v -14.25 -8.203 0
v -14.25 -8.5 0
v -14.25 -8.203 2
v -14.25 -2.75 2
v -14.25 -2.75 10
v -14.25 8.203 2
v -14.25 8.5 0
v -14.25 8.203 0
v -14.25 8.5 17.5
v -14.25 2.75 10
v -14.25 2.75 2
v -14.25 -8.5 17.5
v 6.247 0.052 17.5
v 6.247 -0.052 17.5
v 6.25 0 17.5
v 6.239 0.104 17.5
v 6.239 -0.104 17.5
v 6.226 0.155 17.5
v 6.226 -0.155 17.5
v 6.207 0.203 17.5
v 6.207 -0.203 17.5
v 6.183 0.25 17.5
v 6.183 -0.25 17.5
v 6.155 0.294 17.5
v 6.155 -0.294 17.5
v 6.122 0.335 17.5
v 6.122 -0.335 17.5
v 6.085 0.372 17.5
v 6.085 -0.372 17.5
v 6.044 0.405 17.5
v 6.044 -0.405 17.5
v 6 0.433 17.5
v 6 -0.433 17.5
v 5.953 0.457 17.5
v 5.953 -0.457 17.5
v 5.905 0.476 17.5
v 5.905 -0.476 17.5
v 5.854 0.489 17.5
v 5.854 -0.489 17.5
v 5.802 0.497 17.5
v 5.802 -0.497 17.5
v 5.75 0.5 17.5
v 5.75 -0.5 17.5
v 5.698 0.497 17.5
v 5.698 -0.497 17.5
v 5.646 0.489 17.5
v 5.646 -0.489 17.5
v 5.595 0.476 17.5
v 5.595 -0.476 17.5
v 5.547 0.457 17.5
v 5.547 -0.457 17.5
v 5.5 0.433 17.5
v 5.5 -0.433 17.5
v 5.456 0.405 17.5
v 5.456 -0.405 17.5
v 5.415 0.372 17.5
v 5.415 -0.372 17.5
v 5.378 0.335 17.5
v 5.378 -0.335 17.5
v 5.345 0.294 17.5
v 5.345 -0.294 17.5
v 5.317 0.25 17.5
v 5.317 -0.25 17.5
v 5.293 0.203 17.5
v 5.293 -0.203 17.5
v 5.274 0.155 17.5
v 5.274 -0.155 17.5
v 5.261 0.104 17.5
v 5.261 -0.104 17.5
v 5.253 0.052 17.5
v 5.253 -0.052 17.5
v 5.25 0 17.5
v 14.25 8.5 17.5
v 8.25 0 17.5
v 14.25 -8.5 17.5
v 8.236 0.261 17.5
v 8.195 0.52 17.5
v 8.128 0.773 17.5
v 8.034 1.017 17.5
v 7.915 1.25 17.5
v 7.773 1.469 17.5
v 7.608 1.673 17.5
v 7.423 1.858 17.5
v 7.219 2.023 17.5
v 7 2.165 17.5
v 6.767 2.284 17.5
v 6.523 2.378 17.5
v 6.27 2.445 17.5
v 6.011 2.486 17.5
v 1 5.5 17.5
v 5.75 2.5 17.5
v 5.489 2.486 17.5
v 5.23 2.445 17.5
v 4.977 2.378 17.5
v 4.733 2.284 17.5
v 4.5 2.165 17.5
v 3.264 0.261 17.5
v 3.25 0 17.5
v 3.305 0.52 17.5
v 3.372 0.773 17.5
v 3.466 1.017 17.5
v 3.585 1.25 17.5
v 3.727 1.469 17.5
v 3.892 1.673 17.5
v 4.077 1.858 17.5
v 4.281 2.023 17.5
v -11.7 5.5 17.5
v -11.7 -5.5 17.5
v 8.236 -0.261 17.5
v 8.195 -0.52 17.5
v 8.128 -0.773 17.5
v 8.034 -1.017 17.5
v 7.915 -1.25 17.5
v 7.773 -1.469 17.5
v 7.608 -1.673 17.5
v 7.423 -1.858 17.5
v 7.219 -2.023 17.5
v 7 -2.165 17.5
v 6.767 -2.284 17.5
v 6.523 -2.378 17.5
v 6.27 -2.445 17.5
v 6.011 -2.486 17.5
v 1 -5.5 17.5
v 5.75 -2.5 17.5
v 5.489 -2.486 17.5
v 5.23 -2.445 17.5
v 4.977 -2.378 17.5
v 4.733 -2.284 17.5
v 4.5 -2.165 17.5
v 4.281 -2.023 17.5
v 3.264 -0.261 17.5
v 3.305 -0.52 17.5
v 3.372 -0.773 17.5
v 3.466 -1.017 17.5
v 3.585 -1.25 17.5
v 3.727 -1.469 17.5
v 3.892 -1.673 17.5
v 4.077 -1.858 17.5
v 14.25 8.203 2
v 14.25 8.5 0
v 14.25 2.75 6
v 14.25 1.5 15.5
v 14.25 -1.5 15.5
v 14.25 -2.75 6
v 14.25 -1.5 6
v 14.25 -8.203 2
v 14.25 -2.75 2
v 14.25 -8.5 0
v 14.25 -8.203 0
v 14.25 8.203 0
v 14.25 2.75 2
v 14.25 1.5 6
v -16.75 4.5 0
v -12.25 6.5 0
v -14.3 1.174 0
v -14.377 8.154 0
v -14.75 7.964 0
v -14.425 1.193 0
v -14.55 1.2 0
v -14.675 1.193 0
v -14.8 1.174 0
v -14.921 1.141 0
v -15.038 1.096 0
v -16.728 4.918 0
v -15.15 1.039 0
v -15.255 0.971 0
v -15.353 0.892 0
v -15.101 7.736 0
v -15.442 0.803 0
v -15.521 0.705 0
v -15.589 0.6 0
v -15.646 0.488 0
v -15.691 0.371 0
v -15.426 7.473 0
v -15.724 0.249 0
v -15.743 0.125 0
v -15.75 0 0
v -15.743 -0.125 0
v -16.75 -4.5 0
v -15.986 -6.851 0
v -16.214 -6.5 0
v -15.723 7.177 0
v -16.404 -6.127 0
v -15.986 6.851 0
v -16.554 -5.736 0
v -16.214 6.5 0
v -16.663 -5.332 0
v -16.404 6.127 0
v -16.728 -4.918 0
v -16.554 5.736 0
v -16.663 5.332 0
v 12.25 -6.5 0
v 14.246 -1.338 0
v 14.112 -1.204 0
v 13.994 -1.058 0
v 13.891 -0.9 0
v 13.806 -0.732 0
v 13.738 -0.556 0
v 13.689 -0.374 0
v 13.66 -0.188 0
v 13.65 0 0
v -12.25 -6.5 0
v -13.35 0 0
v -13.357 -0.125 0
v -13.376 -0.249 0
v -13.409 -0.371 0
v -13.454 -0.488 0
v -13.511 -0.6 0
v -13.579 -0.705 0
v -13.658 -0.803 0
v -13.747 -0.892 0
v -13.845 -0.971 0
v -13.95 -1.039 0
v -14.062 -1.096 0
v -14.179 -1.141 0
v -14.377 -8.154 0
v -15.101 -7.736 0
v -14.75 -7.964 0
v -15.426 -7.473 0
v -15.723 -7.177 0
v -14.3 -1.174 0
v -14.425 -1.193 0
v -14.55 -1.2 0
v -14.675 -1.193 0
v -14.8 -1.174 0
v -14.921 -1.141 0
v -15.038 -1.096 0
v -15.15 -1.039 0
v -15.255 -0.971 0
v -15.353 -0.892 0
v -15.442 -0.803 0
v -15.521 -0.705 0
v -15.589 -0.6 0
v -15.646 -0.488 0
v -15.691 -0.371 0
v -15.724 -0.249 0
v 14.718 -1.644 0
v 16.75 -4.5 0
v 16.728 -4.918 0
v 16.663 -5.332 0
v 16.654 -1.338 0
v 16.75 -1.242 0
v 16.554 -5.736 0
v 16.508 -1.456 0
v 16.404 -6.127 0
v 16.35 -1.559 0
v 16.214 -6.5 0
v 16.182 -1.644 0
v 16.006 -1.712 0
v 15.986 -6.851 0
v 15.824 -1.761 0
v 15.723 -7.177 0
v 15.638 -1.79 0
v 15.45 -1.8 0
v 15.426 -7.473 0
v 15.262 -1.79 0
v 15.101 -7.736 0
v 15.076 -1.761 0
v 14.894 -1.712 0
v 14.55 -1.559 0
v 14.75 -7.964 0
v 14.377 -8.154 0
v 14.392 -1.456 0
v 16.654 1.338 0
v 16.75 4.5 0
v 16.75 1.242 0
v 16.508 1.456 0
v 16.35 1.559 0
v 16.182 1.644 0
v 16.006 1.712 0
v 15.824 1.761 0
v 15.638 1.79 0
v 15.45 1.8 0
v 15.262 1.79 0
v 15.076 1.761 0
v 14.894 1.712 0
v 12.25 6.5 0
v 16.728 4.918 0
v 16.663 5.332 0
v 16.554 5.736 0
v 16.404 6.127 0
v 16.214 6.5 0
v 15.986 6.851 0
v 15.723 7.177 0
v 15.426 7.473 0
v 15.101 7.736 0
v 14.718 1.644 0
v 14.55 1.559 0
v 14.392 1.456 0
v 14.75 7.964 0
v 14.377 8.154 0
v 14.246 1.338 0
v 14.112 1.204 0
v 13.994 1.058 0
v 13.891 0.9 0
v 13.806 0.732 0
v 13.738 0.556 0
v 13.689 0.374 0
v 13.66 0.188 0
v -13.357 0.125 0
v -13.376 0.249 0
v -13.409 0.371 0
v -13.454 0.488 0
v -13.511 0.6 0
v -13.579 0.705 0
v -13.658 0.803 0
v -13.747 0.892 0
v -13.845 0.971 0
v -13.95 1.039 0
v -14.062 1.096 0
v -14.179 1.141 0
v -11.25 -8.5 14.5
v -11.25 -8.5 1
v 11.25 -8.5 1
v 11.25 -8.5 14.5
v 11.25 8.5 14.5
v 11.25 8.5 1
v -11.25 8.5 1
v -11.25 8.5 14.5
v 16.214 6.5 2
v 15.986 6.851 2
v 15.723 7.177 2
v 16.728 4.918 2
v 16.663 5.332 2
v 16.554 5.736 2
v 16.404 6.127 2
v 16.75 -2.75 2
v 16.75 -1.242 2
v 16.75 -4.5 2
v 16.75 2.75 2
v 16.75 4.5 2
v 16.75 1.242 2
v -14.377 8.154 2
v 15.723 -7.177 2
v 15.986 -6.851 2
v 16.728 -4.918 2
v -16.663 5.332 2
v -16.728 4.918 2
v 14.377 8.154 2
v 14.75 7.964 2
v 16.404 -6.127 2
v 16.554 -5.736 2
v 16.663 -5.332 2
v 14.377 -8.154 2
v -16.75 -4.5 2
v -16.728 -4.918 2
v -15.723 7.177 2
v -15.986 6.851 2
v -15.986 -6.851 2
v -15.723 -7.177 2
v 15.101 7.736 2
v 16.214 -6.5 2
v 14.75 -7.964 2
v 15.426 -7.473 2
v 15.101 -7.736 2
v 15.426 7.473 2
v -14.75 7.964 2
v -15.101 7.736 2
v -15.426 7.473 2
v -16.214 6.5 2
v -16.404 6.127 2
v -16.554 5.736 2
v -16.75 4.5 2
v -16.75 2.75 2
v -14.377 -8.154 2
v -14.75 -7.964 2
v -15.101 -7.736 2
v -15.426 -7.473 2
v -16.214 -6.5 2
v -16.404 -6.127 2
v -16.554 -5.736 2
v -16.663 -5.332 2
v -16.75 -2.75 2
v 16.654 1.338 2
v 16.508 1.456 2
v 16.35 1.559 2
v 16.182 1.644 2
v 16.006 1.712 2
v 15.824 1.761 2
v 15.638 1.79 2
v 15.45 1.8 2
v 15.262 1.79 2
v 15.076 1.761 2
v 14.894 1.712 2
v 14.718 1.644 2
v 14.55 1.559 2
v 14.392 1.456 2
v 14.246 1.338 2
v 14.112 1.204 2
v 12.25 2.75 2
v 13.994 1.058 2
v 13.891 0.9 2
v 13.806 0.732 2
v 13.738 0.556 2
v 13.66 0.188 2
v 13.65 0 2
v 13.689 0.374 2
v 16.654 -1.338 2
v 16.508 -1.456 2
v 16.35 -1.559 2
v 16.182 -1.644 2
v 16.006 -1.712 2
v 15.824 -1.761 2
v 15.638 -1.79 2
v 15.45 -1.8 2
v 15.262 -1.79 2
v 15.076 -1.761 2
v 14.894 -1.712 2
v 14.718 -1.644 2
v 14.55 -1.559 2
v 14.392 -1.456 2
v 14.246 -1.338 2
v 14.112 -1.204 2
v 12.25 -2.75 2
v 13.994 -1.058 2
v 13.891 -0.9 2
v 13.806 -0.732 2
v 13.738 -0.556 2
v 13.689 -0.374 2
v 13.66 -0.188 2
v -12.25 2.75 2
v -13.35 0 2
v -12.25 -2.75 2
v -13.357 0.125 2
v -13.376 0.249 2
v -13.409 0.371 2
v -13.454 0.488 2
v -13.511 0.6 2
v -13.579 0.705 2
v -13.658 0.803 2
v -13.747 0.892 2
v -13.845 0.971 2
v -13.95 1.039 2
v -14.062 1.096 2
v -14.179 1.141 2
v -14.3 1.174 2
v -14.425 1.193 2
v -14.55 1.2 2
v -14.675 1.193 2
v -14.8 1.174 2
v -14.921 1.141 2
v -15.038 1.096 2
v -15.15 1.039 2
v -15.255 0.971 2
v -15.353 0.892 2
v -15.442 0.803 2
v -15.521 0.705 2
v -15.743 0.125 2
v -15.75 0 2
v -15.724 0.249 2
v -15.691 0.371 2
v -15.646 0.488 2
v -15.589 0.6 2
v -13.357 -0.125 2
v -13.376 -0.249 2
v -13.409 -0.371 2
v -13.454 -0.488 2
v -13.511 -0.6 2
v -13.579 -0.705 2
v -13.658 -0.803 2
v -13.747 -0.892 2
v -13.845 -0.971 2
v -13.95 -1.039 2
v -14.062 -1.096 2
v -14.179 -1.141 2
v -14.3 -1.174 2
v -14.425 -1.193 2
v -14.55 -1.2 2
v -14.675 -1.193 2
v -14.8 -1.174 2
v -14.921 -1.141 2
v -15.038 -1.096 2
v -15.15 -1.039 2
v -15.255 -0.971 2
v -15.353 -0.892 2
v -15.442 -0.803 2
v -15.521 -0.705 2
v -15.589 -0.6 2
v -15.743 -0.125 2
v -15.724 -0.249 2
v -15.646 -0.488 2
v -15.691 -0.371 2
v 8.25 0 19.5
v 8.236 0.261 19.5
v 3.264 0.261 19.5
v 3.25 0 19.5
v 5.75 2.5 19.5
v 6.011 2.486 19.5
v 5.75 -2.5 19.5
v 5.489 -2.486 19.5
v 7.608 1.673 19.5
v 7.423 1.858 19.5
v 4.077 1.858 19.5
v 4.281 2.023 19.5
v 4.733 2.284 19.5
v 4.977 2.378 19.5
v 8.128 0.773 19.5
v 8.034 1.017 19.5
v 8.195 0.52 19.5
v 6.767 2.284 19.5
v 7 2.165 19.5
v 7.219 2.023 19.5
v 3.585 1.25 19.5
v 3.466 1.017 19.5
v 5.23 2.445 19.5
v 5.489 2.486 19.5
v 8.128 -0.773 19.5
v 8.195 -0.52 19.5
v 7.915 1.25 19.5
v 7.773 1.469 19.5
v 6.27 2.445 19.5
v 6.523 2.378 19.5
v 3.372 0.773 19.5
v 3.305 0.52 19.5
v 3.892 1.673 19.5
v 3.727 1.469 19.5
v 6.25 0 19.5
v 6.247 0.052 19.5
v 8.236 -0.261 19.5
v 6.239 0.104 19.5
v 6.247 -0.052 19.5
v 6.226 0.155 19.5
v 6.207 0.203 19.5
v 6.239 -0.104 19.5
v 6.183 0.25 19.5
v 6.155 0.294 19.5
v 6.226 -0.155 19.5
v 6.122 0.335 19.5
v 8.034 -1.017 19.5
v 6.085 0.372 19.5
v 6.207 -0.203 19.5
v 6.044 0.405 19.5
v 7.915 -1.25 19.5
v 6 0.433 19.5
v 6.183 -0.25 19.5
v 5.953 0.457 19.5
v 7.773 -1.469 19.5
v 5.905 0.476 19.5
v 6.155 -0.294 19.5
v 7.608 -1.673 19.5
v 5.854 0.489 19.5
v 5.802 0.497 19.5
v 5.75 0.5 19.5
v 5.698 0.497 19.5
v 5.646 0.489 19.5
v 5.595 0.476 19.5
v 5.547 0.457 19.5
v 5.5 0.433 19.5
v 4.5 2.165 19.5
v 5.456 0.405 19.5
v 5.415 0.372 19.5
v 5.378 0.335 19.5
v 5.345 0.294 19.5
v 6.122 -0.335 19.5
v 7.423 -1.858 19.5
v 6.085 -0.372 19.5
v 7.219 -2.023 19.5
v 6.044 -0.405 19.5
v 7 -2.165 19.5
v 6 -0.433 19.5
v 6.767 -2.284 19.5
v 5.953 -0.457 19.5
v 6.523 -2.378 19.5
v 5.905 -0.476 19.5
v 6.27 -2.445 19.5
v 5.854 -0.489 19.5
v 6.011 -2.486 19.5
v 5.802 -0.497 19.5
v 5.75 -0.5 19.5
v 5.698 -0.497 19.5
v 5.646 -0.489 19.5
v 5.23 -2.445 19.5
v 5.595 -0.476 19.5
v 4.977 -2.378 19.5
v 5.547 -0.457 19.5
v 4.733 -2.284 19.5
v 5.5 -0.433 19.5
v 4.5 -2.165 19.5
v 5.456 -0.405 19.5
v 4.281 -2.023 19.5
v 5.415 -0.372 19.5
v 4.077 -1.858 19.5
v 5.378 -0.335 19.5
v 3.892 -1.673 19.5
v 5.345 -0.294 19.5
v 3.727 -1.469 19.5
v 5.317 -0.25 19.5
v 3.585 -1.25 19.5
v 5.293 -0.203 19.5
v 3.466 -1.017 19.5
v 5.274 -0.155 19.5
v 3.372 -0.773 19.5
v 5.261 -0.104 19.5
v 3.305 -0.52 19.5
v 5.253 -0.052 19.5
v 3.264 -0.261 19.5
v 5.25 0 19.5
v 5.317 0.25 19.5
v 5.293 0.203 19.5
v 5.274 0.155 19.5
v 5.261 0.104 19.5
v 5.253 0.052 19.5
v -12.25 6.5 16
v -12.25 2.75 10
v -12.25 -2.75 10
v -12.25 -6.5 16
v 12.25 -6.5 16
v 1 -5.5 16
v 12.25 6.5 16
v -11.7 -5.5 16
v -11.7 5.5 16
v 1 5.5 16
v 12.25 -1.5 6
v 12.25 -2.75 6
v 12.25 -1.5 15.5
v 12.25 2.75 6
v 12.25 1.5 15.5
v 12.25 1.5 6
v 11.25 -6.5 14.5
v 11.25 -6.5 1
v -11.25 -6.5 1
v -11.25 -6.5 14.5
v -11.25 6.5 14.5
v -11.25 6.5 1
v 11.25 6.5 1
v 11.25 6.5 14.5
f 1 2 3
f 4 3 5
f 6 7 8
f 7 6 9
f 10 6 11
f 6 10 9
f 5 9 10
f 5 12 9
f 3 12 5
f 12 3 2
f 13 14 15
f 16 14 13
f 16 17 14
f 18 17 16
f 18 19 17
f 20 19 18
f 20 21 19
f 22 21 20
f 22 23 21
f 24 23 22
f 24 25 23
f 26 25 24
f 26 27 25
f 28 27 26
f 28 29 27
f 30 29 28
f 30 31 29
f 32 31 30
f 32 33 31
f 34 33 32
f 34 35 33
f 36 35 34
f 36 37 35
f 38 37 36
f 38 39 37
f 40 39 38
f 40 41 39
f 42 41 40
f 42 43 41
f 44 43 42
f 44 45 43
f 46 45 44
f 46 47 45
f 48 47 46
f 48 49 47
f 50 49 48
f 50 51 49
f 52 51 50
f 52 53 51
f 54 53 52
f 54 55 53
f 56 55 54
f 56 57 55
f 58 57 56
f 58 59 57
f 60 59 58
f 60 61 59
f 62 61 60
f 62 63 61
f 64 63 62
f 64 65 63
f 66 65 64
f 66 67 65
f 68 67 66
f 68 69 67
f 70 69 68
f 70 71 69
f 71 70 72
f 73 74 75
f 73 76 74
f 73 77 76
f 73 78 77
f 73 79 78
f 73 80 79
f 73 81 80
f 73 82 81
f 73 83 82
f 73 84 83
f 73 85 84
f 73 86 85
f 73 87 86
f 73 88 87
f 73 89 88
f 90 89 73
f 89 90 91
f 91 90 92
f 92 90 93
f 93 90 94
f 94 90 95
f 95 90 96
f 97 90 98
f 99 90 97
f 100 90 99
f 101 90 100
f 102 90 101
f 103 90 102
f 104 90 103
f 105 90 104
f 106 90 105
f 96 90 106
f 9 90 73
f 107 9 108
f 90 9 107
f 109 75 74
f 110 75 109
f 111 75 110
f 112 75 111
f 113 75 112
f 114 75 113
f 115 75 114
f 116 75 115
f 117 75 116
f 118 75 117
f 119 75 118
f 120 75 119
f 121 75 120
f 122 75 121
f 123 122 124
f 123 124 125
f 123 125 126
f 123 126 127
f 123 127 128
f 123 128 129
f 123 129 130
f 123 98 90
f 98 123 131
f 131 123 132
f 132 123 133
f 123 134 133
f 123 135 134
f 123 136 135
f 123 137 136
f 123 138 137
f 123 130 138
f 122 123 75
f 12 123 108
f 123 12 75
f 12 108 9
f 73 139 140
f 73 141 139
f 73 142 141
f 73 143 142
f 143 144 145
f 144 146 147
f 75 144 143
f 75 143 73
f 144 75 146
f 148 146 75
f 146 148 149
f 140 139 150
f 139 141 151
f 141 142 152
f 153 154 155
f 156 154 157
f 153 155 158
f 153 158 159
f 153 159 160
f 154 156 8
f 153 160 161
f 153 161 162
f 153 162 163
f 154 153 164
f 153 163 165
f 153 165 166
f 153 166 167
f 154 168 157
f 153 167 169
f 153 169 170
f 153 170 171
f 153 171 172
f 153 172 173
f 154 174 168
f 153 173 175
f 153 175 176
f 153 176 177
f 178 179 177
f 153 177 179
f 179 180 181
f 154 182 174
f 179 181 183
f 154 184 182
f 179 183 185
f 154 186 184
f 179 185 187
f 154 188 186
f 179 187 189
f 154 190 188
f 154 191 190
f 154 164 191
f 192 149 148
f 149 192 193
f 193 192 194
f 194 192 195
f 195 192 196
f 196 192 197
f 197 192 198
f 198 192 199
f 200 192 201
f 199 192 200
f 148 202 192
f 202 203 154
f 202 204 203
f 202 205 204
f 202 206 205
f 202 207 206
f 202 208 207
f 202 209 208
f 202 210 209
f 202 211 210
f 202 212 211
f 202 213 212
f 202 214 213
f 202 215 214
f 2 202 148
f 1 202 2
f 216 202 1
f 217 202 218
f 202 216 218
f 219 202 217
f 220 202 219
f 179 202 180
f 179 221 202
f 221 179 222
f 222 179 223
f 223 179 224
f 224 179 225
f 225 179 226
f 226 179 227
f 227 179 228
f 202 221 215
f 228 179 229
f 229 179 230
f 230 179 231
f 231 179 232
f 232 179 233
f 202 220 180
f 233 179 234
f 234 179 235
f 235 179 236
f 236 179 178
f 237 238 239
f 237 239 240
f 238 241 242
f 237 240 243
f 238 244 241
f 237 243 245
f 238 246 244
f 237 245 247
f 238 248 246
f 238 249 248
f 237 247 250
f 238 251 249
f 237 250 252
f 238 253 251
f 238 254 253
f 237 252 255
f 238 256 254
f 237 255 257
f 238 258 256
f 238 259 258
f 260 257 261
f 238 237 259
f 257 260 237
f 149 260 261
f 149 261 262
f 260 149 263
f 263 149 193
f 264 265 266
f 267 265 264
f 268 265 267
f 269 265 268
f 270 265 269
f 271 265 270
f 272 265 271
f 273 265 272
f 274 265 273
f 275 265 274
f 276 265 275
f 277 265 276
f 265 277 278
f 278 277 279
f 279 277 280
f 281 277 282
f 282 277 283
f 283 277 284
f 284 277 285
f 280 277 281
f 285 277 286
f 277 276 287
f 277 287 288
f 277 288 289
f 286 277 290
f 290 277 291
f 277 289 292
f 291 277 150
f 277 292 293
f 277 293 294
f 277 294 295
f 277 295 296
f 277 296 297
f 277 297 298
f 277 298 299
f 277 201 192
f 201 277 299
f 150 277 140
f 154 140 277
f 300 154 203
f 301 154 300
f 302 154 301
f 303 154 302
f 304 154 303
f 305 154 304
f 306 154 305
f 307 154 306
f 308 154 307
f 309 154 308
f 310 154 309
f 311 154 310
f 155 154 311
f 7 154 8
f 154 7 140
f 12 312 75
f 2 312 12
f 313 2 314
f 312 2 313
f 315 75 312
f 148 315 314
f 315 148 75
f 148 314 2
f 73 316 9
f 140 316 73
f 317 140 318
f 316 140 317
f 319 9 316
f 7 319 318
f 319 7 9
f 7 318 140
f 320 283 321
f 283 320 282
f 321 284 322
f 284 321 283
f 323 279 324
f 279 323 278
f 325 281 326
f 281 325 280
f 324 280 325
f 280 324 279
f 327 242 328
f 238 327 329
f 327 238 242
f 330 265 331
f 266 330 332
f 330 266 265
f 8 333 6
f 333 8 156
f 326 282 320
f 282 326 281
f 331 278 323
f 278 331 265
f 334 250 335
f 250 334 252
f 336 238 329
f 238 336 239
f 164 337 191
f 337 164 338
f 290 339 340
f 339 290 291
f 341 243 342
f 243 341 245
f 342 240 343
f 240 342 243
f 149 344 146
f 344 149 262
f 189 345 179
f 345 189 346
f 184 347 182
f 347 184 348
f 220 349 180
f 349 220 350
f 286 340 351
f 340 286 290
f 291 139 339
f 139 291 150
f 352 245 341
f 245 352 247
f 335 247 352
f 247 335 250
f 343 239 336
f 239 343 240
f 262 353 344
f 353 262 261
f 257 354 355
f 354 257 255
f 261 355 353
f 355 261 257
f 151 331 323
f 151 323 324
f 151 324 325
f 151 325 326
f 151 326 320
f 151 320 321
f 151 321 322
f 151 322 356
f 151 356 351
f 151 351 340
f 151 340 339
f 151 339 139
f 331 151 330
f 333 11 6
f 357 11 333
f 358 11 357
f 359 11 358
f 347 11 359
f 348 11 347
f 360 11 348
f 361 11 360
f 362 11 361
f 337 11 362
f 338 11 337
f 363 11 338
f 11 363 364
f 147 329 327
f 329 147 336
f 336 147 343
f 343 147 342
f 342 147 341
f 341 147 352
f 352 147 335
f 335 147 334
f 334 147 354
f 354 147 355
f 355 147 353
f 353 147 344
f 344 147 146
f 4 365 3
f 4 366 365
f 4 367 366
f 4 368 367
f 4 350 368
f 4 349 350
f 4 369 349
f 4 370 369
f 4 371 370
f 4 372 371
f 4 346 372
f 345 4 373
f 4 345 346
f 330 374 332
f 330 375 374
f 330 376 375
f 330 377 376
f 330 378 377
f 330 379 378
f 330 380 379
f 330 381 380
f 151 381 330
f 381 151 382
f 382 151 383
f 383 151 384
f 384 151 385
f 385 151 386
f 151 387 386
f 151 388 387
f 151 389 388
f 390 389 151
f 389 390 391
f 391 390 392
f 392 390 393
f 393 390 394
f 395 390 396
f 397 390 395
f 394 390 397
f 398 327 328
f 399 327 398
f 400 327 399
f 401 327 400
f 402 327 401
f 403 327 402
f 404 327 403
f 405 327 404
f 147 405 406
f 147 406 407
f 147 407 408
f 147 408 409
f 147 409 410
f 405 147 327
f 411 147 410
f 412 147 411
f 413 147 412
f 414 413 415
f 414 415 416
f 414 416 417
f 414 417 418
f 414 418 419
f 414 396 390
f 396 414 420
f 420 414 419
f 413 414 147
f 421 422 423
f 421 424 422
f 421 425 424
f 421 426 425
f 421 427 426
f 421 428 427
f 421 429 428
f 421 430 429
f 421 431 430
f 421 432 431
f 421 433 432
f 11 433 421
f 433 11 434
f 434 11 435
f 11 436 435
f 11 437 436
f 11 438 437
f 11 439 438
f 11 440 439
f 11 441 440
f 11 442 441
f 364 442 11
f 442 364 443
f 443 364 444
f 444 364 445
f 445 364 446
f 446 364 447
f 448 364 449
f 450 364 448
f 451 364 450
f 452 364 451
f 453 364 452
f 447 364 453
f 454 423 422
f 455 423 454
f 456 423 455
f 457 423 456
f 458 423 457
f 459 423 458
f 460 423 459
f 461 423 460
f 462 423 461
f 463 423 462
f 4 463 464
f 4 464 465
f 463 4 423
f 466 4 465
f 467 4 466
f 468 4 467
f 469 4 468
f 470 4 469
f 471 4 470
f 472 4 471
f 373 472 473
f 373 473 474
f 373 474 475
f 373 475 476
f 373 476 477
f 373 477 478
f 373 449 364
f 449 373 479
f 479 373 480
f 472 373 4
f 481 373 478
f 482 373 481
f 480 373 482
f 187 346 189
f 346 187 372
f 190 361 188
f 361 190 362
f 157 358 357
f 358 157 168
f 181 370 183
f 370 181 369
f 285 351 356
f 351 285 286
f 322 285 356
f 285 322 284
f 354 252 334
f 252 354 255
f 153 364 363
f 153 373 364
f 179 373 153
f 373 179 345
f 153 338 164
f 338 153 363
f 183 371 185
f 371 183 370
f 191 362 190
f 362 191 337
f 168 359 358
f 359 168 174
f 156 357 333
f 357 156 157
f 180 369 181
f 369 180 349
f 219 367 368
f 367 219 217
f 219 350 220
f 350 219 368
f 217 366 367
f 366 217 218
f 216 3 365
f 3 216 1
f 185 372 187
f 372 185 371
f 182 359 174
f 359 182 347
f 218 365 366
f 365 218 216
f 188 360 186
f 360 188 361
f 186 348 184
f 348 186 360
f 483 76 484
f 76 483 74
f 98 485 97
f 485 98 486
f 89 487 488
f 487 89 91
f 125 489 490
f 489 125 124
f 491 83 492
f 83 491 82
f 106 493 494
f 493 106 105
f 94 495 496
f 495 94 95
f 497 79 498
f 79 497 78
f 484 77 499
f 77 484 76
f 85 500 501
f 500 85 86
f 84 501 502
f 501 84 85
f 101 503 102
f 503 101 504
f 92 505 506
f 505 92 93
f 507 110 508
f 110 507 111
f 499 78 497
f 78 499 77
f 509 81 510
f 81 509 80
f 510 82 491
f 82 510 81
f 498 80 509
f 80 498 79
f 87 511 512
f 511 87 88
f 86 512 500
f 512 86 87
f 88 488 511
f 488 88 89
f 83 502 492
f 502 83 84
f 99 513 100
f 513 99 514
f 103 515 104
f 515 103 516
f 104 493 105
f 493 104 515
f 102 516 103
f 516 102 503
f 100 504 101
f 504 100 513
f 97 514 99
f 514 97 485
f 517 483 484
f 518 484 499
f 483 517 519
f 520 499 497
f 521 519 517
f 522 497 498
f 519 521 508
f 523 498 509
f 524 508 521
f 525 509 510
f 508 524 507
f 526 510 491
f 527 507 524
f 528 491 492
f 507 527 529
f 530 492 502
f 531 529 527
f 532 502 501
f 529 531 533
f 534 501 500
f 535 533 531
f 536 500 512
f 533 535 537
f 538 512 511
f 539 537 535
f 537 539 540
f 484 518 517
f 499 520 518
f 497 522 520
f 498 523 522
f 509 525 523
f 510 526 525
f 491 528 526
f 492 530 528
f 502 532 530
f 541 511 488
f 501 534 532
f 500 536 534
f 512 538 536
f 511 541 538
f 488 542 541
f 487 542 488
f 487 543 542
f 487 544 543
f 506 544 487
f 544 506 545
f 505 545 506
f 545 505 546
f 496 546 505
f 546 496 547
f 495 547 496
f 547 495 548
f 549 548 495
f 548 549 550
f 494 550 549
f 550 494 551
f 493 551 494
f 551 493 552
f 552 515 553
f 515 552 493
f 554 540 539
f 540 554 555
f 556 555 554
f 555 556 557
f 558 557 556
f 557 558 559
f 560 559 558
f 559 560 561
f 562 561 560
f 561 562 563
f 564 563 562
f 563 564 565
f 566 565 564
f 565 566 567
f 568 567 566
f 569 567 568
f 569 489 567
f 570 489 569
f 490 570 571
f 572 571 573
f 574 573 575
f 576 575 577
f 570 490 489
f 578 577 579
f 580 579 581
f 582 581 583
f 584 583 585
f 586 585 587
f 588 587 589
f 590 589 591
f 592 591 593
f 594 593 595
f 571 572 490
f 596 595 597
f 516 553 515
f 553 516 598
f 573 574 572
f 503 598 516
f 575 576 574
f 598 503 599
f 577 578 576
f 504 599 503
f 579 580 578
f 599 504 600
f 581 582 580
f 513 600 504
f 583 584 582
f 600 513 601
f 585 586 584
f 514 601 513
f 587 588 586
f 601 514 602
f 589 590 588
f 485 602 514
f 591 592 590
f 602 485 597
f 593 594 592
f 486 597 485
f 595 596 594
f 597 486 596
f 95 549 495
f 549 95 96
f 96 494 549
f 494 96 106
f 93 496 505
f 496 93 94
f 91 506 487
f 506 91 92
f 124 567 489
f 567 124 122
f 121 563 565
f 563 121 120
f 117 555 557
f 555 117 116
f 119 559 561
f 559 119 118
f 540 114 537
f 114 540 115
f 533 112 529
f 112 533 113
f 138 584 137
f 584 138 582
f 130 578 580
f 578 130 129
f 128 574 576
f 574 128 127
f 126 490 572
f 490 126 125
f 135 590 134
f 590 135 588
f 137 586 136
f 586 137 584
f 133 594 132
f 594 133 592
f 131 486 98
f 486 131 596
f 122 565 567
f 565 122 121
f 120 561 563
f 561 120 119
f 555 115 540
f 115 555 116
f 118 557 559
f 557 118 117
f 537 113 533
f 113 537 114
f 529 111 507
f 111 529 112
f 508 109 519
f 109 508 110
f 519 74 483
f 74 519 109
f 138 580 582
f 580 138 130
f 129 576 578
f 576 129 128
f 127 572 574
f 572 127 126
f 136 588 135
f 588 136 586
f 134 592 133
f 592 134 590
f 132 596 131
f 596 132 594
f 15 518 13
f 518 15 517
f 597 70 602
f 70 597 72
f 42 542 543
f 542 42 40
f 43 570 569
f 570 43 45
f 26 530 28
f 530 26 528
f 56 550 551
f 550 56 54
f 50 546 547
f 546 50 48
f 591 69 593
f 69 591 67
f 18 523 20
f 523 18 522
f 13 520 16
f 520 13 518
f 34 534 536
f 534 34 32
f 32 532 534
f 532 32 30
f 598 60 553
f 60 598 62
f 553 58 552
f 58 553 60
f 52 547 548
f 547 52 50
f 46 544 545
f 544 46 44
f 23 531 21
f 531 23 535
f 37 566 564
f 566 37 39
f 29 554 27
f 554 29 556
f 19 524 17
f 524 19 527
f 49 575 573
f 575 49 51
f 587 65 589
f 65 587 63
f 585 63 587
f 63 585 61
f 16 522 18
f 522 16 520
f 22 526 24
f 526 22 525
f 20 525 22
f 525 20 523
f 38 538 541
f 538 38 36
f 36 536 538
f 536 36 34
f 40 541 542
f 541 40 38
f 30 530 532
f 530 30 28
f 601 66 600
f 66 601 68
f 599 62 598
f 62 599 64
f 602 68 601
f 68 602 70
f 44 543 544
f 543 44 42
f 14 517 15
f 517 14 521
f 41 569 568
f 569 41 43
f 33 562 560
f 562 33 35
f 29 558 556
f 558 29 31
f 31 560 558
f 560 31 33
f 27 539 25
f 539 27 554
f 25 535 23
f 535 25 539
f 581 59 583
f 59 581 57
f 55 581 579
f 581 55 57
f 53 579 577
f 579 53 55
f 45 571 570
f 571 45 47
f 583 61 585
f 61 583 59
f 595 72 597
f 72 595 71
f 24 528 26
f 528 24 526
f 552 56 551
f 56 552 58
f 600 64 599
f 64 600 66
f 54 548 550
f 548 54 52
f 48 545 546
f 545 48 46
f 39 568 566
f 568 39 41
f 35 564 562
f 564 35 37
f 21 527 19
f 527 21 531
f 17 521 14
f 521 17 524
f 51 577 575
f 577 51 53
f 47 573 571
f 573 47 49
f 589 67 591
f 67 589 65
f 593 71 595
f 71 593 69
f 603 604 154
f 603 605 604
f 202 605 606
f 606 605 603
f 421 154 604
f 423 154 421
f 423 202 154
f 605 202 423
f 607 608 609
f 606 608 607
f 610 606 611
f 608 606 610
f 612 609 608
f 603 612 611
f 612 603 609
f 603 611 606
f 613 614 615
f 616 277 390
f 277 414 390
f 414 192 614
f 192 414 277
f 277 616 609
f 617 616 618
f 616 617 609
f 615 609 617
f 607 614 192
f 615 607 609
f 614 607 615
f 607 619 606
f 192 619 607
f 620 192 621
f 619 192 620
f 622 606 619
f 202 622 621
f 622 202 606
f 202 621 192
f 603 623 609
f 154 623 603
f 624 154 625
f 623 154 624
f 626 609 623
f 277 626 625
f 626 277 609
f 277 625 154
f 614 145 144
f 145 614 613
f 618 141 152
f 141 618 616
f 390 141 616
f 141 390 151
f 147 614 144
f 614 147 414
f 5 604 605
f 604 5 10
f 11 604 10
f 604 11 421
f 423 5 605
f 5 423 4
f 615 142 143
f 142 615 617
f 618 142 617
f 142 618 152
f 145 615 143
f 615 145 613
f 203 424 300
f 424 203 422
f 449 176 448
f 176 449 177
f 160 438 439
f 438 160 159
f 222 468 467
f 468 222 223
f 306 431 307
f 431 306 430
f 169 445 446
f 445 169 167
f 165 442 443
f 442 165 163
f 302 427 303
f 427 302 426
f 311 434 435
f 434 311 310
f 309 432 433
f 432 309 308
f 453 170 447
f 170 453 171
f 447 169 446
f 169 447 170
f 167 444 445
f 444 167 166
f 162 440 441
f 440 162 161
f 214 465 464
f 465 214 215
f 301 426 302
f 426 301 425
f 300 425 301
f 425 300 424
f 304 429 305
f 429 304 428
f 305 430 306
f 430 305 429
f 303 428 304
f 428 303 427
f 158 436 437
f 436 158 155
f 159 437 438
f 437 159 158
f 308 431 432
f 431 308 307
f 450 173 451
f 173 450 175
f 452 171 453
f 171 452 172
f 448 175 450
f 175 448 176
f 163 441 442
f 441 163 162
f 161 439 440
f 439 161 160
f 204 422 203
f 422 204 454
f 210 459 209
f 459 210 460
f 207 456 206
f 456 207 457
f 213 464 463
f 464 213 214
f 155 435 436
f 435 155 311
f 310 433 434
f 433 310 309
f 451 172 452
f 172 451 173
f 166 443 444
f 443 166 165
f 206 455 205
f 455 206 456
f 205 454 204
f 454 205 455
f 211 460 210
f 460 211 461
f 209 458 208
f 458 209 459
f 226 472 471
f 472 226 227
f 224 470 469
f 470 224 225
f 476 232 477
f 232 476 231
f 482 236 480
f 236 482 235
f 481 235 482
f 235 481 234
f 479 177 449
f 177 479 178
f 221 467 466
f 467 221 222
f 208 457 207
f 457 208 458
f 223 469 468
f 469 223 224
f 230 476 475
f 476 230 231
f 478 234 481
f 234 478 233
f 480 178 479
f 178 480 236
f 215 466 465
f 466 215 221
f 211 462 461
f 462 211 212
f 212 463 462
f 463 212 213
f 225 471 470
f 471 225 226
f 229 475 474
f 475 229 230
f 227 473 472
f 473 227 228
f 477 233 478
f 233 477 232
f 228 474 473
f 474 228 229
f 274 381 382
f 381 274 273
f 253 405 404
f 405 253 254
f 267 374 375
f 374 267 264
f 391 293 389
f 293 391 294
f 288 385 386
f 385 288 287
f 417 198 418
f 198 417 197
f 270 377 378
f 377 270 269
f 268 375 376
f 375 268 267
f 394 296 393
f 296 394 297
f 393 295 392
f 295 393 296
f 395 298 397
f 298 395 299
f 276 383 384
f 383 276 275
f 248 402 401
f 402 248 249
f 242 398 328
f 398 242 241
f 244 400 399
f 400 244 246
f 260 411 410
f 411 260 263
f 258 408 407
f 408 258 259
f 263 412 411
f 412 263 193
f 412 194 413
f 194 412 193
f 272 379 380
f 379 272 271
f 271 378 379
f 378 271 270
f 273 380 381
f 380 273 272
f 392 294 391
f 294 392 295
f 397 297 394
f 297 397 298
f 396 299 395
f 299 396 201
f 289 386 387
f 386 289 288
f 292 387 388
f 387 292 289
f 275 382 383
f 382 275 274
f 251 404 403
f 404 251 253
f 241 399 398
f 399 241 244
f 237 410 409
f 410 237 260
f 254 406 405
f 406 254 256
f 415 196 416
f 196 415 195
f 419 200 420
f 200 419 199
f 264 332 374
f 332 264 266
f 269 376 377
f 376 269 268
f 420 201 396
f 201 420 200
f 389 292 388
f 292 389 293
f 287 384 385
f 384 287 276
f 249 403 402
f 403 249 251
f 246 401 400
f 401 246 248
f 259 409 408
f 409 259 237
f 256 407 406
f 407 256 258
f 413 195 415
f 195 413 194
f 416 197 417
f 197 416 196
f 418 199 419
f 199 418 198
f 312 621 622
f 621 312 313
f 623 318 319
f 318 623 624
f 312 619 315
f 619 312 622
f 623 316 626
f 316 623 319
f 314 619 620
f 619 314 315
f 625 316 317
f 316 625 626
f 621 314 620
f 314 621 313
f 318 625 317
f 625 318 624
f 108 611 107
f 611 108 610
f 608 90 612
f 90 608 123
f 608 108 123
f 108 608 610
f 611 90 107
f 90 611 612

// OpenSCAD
//Actual servo dimensions
//length: 23.5
//width: = 12.5
//height = 16

faces = 60;
caddy_thickness=2;
caddy_edges_widths=2; //Size of side left after subtracting to reduce print material/time
servo_height=15.5;
servo_width=13;
servo_length=24.5;
screw_lips=4;
caddy_length=servo_length+2*caddy_edges_widths;

screw_height=9;
screw_radius=1.2;
screw_offset_from_edge=2.3;

bolt_radius=1.8;

hinge_position=6.5;
hinge_radius=2.5;
hinge_height=2;
hinge_hole_radius=0.5;

leg_length=30;
leg_width=2;
leg_end_radius=2;

hinge_thickness=2;
hinge_length=20;
hinge_servo_height = servo_height + 8;
hinge_radius_hole=hinge_radius+0.2;
hinge_radius_servo_hole=3.5;
hinge_radius_servo_screw_hole=8;
hinge_radius_servo_screw_hole_radius=0.5;
hinge_arm_length=5;



//hinge_joint_perpendicular();
//hinge_joint_straight();
//hinge_leg();
//caddy();
//hinge();
complete_caddy();

module hinge_joint_straight()
{
	//Arm part
	translate([hinge_length +hinge_arm_length/2 ,0,hinge_servo_height/2]) cube([hinge_arm_length, servo_width, hinge_thickness], center=true);

	translate([hinge_length +hinge_arm_length/2 ,0,hinge_servo_height/2-servo_height/2+hinge_height]) cube([hinge_arm_length, servo_width, hinge_thickness], center=true);

	translate([0 ,0,-servo_height/2+hinge_height]) hinge();

	translate([hinge_length+caddy_thickness/2 + servo_length/2+hinge_arm_length, 0,0]) rotate([0,0,0]) complete_caddy();
}

module hinge_joint_perpendicular()
{
	hinge();

	translate([hinge_length+caddy_thickness/2 + servo_length/2, (servo_width)/2,caddy_length/2-caddy_thickness/2]) rotate([90,0,0]) complete_caddy();
}

module hinge_leg()
{
	complete_caddy();
	leg();
}


module hinge()
{
	//Arm part
	//translate([hinge_length +hinge_arm_length/2 ,0,hinge_servo_height/2]) cube([hinge_arm_length, servo_width, hinge_thickness], center=true);

	translate([0,0,hinge_thickness/2])
	union()
	{

		//Hinge part - Servo pivot side
		difference()
		{
			union()
			{
				cylinder(r=servo_width/2, h=hinge_thickness, $fn=faces, center=true);
				translate([hinge_length/2,0,0]) cube([hinge_length, servo_width, hinge_thickness], center=true);
			}
			cylinder(r=hinge_radius_servo_hole, h=hinge_thickness+1, $fn=faces, center=true);
			translate([hinge_radius_servo_screw_hole,0,0]) cylinder(r=hinge_radius_servo_screw_hole_radius, h=hinge_thickness+1, $fn=faces, center=true);
		}	


		//Hinge part - Artifical pivot side
		translate([0,0,hinge_servo_height])
		difference()
		{
			union()
			{
				cylinder(r=servo_width/2, h=hinge_thickness, $fn=faces, center=true);
				translate([hinge_length/2,0,0]) cube([hinge_length, servo_width, hinge_thickness], center=true);
			}
			cylinder(r=hinge_radius_hole, h=hinge_thickness+1, $fn=faces, center=true);
		
		}	

		translate([hinge_length,0,hinge_servo_height/2]) cube([hinge_thickness, servo_width, hinge_servo_height+hinge_thickness ], center=true);

	}//union


}


module complete_caddy()
{
	difference()
	{
		union()
		{
			caddy();
			hinge_point();
//			leg();
		}

		//Subtract screw holes
		translate([-servo_length/2-screw_offset_from_edge,0,screw_height/2]) cylinder(r=screw_radius, h=screw_height+1, center=true, $fn=faces);
		translate([servo_length/2+screw_offset_from_edge+bolt_radius/2,0,screw_height/2]) cylinder(r=bolt_radius, h=screw_height+1, center=true, $fn=faces);

		//Subtract Y side areas to reduce print material and time
		translate([0,0,servo_height/2]) cube([servo_length-caddy_edges_widths,2*servo_width,servo_height-caddy_edges_widths], center=true, $fn=faces);

		//Subtract Z bottom area to reduce print material and time
		translate([-servo_length*.6/2+caddy_edges_widths,0,servo_height/2]) cube([servo_length*.6-caddy_edges_widths,servo_width-caddy_edges_widths,2*servo_height], center=true, $fn=faces);

	}
}


module caddy(){
	difference()
	{
		union()
		{
			translate([0,0,servo_height/2+caddy_thickness/2]) cube([servo_length+caddy_thickness*2, servo_width+caddy_thickness*2, servo_height+caddy_thickness], center=true, $fn=faces);

			translate([0,0,caddy_thickness/2]) 
			minkowski()
			{
				cube([servo_length+caddy_thickness/2, servo_width+caddy_thickness*2-screw_lips*2, caddy_thickness/2], center=true, $fn=faces);
				cylinder(r=screw_lips, h=caddy_thickness/2, center=true, $fn=faces);
			}
		}

		translate([0,0,servo_height/2]) cube([servo_length, servo_width, servo_height+1], center=true, $fn=faces);

		translate([servo_length/2,0,screw_lips]) cube([servo_length, 5.5, 4], center=true, $fn=faces);

        translate([-servo_length/2,0,screw_lips+2]) cube([servo_length, 5.5, 8], center=true, $fn=faces);


		//translate([servo_length/2+caddy_thickness,0,servo_height+caddy_thickness-3]) sphere(r=servo_width/3, $fn=faces, center=true);
		translate([servo_length/2+caddy_thickness,0,servo_height-caddy_thickness-3]) cube([20,3,10], $fn=faces, center=true);
	}

}

module hinge_point()
{
	translate([servo_length/2-hinge_position,0,hinge_height/2+servo_height+caddy_thickness]) 
	difference(){
		cylinder(r=hinge_radius, h=hinge_height, $fn=faces, center=true);
		cylinder(r=hinge_hole_radius, h=hinge_height+1, $fn=faces, center=true);
	}
}


module leg()
{
	translate([-screw_lips/2-servo_length/2,0,servo_height/2+caddy_thickness/2]) 
	hull()
	{	
		cube([screw_lips,leg_width,servo_height+caddy_thickness], center=true);
		rotate([0,0,0]) translate([-leg_length-servo_length/2+leg_end_radius,0,-servo_height/2-caddy_thickness/2+leg_width/2+leg_end_radius-1]) sphere(r=leg_end_radius, h=leg_width, center=true, $fn=faces);
}


}
